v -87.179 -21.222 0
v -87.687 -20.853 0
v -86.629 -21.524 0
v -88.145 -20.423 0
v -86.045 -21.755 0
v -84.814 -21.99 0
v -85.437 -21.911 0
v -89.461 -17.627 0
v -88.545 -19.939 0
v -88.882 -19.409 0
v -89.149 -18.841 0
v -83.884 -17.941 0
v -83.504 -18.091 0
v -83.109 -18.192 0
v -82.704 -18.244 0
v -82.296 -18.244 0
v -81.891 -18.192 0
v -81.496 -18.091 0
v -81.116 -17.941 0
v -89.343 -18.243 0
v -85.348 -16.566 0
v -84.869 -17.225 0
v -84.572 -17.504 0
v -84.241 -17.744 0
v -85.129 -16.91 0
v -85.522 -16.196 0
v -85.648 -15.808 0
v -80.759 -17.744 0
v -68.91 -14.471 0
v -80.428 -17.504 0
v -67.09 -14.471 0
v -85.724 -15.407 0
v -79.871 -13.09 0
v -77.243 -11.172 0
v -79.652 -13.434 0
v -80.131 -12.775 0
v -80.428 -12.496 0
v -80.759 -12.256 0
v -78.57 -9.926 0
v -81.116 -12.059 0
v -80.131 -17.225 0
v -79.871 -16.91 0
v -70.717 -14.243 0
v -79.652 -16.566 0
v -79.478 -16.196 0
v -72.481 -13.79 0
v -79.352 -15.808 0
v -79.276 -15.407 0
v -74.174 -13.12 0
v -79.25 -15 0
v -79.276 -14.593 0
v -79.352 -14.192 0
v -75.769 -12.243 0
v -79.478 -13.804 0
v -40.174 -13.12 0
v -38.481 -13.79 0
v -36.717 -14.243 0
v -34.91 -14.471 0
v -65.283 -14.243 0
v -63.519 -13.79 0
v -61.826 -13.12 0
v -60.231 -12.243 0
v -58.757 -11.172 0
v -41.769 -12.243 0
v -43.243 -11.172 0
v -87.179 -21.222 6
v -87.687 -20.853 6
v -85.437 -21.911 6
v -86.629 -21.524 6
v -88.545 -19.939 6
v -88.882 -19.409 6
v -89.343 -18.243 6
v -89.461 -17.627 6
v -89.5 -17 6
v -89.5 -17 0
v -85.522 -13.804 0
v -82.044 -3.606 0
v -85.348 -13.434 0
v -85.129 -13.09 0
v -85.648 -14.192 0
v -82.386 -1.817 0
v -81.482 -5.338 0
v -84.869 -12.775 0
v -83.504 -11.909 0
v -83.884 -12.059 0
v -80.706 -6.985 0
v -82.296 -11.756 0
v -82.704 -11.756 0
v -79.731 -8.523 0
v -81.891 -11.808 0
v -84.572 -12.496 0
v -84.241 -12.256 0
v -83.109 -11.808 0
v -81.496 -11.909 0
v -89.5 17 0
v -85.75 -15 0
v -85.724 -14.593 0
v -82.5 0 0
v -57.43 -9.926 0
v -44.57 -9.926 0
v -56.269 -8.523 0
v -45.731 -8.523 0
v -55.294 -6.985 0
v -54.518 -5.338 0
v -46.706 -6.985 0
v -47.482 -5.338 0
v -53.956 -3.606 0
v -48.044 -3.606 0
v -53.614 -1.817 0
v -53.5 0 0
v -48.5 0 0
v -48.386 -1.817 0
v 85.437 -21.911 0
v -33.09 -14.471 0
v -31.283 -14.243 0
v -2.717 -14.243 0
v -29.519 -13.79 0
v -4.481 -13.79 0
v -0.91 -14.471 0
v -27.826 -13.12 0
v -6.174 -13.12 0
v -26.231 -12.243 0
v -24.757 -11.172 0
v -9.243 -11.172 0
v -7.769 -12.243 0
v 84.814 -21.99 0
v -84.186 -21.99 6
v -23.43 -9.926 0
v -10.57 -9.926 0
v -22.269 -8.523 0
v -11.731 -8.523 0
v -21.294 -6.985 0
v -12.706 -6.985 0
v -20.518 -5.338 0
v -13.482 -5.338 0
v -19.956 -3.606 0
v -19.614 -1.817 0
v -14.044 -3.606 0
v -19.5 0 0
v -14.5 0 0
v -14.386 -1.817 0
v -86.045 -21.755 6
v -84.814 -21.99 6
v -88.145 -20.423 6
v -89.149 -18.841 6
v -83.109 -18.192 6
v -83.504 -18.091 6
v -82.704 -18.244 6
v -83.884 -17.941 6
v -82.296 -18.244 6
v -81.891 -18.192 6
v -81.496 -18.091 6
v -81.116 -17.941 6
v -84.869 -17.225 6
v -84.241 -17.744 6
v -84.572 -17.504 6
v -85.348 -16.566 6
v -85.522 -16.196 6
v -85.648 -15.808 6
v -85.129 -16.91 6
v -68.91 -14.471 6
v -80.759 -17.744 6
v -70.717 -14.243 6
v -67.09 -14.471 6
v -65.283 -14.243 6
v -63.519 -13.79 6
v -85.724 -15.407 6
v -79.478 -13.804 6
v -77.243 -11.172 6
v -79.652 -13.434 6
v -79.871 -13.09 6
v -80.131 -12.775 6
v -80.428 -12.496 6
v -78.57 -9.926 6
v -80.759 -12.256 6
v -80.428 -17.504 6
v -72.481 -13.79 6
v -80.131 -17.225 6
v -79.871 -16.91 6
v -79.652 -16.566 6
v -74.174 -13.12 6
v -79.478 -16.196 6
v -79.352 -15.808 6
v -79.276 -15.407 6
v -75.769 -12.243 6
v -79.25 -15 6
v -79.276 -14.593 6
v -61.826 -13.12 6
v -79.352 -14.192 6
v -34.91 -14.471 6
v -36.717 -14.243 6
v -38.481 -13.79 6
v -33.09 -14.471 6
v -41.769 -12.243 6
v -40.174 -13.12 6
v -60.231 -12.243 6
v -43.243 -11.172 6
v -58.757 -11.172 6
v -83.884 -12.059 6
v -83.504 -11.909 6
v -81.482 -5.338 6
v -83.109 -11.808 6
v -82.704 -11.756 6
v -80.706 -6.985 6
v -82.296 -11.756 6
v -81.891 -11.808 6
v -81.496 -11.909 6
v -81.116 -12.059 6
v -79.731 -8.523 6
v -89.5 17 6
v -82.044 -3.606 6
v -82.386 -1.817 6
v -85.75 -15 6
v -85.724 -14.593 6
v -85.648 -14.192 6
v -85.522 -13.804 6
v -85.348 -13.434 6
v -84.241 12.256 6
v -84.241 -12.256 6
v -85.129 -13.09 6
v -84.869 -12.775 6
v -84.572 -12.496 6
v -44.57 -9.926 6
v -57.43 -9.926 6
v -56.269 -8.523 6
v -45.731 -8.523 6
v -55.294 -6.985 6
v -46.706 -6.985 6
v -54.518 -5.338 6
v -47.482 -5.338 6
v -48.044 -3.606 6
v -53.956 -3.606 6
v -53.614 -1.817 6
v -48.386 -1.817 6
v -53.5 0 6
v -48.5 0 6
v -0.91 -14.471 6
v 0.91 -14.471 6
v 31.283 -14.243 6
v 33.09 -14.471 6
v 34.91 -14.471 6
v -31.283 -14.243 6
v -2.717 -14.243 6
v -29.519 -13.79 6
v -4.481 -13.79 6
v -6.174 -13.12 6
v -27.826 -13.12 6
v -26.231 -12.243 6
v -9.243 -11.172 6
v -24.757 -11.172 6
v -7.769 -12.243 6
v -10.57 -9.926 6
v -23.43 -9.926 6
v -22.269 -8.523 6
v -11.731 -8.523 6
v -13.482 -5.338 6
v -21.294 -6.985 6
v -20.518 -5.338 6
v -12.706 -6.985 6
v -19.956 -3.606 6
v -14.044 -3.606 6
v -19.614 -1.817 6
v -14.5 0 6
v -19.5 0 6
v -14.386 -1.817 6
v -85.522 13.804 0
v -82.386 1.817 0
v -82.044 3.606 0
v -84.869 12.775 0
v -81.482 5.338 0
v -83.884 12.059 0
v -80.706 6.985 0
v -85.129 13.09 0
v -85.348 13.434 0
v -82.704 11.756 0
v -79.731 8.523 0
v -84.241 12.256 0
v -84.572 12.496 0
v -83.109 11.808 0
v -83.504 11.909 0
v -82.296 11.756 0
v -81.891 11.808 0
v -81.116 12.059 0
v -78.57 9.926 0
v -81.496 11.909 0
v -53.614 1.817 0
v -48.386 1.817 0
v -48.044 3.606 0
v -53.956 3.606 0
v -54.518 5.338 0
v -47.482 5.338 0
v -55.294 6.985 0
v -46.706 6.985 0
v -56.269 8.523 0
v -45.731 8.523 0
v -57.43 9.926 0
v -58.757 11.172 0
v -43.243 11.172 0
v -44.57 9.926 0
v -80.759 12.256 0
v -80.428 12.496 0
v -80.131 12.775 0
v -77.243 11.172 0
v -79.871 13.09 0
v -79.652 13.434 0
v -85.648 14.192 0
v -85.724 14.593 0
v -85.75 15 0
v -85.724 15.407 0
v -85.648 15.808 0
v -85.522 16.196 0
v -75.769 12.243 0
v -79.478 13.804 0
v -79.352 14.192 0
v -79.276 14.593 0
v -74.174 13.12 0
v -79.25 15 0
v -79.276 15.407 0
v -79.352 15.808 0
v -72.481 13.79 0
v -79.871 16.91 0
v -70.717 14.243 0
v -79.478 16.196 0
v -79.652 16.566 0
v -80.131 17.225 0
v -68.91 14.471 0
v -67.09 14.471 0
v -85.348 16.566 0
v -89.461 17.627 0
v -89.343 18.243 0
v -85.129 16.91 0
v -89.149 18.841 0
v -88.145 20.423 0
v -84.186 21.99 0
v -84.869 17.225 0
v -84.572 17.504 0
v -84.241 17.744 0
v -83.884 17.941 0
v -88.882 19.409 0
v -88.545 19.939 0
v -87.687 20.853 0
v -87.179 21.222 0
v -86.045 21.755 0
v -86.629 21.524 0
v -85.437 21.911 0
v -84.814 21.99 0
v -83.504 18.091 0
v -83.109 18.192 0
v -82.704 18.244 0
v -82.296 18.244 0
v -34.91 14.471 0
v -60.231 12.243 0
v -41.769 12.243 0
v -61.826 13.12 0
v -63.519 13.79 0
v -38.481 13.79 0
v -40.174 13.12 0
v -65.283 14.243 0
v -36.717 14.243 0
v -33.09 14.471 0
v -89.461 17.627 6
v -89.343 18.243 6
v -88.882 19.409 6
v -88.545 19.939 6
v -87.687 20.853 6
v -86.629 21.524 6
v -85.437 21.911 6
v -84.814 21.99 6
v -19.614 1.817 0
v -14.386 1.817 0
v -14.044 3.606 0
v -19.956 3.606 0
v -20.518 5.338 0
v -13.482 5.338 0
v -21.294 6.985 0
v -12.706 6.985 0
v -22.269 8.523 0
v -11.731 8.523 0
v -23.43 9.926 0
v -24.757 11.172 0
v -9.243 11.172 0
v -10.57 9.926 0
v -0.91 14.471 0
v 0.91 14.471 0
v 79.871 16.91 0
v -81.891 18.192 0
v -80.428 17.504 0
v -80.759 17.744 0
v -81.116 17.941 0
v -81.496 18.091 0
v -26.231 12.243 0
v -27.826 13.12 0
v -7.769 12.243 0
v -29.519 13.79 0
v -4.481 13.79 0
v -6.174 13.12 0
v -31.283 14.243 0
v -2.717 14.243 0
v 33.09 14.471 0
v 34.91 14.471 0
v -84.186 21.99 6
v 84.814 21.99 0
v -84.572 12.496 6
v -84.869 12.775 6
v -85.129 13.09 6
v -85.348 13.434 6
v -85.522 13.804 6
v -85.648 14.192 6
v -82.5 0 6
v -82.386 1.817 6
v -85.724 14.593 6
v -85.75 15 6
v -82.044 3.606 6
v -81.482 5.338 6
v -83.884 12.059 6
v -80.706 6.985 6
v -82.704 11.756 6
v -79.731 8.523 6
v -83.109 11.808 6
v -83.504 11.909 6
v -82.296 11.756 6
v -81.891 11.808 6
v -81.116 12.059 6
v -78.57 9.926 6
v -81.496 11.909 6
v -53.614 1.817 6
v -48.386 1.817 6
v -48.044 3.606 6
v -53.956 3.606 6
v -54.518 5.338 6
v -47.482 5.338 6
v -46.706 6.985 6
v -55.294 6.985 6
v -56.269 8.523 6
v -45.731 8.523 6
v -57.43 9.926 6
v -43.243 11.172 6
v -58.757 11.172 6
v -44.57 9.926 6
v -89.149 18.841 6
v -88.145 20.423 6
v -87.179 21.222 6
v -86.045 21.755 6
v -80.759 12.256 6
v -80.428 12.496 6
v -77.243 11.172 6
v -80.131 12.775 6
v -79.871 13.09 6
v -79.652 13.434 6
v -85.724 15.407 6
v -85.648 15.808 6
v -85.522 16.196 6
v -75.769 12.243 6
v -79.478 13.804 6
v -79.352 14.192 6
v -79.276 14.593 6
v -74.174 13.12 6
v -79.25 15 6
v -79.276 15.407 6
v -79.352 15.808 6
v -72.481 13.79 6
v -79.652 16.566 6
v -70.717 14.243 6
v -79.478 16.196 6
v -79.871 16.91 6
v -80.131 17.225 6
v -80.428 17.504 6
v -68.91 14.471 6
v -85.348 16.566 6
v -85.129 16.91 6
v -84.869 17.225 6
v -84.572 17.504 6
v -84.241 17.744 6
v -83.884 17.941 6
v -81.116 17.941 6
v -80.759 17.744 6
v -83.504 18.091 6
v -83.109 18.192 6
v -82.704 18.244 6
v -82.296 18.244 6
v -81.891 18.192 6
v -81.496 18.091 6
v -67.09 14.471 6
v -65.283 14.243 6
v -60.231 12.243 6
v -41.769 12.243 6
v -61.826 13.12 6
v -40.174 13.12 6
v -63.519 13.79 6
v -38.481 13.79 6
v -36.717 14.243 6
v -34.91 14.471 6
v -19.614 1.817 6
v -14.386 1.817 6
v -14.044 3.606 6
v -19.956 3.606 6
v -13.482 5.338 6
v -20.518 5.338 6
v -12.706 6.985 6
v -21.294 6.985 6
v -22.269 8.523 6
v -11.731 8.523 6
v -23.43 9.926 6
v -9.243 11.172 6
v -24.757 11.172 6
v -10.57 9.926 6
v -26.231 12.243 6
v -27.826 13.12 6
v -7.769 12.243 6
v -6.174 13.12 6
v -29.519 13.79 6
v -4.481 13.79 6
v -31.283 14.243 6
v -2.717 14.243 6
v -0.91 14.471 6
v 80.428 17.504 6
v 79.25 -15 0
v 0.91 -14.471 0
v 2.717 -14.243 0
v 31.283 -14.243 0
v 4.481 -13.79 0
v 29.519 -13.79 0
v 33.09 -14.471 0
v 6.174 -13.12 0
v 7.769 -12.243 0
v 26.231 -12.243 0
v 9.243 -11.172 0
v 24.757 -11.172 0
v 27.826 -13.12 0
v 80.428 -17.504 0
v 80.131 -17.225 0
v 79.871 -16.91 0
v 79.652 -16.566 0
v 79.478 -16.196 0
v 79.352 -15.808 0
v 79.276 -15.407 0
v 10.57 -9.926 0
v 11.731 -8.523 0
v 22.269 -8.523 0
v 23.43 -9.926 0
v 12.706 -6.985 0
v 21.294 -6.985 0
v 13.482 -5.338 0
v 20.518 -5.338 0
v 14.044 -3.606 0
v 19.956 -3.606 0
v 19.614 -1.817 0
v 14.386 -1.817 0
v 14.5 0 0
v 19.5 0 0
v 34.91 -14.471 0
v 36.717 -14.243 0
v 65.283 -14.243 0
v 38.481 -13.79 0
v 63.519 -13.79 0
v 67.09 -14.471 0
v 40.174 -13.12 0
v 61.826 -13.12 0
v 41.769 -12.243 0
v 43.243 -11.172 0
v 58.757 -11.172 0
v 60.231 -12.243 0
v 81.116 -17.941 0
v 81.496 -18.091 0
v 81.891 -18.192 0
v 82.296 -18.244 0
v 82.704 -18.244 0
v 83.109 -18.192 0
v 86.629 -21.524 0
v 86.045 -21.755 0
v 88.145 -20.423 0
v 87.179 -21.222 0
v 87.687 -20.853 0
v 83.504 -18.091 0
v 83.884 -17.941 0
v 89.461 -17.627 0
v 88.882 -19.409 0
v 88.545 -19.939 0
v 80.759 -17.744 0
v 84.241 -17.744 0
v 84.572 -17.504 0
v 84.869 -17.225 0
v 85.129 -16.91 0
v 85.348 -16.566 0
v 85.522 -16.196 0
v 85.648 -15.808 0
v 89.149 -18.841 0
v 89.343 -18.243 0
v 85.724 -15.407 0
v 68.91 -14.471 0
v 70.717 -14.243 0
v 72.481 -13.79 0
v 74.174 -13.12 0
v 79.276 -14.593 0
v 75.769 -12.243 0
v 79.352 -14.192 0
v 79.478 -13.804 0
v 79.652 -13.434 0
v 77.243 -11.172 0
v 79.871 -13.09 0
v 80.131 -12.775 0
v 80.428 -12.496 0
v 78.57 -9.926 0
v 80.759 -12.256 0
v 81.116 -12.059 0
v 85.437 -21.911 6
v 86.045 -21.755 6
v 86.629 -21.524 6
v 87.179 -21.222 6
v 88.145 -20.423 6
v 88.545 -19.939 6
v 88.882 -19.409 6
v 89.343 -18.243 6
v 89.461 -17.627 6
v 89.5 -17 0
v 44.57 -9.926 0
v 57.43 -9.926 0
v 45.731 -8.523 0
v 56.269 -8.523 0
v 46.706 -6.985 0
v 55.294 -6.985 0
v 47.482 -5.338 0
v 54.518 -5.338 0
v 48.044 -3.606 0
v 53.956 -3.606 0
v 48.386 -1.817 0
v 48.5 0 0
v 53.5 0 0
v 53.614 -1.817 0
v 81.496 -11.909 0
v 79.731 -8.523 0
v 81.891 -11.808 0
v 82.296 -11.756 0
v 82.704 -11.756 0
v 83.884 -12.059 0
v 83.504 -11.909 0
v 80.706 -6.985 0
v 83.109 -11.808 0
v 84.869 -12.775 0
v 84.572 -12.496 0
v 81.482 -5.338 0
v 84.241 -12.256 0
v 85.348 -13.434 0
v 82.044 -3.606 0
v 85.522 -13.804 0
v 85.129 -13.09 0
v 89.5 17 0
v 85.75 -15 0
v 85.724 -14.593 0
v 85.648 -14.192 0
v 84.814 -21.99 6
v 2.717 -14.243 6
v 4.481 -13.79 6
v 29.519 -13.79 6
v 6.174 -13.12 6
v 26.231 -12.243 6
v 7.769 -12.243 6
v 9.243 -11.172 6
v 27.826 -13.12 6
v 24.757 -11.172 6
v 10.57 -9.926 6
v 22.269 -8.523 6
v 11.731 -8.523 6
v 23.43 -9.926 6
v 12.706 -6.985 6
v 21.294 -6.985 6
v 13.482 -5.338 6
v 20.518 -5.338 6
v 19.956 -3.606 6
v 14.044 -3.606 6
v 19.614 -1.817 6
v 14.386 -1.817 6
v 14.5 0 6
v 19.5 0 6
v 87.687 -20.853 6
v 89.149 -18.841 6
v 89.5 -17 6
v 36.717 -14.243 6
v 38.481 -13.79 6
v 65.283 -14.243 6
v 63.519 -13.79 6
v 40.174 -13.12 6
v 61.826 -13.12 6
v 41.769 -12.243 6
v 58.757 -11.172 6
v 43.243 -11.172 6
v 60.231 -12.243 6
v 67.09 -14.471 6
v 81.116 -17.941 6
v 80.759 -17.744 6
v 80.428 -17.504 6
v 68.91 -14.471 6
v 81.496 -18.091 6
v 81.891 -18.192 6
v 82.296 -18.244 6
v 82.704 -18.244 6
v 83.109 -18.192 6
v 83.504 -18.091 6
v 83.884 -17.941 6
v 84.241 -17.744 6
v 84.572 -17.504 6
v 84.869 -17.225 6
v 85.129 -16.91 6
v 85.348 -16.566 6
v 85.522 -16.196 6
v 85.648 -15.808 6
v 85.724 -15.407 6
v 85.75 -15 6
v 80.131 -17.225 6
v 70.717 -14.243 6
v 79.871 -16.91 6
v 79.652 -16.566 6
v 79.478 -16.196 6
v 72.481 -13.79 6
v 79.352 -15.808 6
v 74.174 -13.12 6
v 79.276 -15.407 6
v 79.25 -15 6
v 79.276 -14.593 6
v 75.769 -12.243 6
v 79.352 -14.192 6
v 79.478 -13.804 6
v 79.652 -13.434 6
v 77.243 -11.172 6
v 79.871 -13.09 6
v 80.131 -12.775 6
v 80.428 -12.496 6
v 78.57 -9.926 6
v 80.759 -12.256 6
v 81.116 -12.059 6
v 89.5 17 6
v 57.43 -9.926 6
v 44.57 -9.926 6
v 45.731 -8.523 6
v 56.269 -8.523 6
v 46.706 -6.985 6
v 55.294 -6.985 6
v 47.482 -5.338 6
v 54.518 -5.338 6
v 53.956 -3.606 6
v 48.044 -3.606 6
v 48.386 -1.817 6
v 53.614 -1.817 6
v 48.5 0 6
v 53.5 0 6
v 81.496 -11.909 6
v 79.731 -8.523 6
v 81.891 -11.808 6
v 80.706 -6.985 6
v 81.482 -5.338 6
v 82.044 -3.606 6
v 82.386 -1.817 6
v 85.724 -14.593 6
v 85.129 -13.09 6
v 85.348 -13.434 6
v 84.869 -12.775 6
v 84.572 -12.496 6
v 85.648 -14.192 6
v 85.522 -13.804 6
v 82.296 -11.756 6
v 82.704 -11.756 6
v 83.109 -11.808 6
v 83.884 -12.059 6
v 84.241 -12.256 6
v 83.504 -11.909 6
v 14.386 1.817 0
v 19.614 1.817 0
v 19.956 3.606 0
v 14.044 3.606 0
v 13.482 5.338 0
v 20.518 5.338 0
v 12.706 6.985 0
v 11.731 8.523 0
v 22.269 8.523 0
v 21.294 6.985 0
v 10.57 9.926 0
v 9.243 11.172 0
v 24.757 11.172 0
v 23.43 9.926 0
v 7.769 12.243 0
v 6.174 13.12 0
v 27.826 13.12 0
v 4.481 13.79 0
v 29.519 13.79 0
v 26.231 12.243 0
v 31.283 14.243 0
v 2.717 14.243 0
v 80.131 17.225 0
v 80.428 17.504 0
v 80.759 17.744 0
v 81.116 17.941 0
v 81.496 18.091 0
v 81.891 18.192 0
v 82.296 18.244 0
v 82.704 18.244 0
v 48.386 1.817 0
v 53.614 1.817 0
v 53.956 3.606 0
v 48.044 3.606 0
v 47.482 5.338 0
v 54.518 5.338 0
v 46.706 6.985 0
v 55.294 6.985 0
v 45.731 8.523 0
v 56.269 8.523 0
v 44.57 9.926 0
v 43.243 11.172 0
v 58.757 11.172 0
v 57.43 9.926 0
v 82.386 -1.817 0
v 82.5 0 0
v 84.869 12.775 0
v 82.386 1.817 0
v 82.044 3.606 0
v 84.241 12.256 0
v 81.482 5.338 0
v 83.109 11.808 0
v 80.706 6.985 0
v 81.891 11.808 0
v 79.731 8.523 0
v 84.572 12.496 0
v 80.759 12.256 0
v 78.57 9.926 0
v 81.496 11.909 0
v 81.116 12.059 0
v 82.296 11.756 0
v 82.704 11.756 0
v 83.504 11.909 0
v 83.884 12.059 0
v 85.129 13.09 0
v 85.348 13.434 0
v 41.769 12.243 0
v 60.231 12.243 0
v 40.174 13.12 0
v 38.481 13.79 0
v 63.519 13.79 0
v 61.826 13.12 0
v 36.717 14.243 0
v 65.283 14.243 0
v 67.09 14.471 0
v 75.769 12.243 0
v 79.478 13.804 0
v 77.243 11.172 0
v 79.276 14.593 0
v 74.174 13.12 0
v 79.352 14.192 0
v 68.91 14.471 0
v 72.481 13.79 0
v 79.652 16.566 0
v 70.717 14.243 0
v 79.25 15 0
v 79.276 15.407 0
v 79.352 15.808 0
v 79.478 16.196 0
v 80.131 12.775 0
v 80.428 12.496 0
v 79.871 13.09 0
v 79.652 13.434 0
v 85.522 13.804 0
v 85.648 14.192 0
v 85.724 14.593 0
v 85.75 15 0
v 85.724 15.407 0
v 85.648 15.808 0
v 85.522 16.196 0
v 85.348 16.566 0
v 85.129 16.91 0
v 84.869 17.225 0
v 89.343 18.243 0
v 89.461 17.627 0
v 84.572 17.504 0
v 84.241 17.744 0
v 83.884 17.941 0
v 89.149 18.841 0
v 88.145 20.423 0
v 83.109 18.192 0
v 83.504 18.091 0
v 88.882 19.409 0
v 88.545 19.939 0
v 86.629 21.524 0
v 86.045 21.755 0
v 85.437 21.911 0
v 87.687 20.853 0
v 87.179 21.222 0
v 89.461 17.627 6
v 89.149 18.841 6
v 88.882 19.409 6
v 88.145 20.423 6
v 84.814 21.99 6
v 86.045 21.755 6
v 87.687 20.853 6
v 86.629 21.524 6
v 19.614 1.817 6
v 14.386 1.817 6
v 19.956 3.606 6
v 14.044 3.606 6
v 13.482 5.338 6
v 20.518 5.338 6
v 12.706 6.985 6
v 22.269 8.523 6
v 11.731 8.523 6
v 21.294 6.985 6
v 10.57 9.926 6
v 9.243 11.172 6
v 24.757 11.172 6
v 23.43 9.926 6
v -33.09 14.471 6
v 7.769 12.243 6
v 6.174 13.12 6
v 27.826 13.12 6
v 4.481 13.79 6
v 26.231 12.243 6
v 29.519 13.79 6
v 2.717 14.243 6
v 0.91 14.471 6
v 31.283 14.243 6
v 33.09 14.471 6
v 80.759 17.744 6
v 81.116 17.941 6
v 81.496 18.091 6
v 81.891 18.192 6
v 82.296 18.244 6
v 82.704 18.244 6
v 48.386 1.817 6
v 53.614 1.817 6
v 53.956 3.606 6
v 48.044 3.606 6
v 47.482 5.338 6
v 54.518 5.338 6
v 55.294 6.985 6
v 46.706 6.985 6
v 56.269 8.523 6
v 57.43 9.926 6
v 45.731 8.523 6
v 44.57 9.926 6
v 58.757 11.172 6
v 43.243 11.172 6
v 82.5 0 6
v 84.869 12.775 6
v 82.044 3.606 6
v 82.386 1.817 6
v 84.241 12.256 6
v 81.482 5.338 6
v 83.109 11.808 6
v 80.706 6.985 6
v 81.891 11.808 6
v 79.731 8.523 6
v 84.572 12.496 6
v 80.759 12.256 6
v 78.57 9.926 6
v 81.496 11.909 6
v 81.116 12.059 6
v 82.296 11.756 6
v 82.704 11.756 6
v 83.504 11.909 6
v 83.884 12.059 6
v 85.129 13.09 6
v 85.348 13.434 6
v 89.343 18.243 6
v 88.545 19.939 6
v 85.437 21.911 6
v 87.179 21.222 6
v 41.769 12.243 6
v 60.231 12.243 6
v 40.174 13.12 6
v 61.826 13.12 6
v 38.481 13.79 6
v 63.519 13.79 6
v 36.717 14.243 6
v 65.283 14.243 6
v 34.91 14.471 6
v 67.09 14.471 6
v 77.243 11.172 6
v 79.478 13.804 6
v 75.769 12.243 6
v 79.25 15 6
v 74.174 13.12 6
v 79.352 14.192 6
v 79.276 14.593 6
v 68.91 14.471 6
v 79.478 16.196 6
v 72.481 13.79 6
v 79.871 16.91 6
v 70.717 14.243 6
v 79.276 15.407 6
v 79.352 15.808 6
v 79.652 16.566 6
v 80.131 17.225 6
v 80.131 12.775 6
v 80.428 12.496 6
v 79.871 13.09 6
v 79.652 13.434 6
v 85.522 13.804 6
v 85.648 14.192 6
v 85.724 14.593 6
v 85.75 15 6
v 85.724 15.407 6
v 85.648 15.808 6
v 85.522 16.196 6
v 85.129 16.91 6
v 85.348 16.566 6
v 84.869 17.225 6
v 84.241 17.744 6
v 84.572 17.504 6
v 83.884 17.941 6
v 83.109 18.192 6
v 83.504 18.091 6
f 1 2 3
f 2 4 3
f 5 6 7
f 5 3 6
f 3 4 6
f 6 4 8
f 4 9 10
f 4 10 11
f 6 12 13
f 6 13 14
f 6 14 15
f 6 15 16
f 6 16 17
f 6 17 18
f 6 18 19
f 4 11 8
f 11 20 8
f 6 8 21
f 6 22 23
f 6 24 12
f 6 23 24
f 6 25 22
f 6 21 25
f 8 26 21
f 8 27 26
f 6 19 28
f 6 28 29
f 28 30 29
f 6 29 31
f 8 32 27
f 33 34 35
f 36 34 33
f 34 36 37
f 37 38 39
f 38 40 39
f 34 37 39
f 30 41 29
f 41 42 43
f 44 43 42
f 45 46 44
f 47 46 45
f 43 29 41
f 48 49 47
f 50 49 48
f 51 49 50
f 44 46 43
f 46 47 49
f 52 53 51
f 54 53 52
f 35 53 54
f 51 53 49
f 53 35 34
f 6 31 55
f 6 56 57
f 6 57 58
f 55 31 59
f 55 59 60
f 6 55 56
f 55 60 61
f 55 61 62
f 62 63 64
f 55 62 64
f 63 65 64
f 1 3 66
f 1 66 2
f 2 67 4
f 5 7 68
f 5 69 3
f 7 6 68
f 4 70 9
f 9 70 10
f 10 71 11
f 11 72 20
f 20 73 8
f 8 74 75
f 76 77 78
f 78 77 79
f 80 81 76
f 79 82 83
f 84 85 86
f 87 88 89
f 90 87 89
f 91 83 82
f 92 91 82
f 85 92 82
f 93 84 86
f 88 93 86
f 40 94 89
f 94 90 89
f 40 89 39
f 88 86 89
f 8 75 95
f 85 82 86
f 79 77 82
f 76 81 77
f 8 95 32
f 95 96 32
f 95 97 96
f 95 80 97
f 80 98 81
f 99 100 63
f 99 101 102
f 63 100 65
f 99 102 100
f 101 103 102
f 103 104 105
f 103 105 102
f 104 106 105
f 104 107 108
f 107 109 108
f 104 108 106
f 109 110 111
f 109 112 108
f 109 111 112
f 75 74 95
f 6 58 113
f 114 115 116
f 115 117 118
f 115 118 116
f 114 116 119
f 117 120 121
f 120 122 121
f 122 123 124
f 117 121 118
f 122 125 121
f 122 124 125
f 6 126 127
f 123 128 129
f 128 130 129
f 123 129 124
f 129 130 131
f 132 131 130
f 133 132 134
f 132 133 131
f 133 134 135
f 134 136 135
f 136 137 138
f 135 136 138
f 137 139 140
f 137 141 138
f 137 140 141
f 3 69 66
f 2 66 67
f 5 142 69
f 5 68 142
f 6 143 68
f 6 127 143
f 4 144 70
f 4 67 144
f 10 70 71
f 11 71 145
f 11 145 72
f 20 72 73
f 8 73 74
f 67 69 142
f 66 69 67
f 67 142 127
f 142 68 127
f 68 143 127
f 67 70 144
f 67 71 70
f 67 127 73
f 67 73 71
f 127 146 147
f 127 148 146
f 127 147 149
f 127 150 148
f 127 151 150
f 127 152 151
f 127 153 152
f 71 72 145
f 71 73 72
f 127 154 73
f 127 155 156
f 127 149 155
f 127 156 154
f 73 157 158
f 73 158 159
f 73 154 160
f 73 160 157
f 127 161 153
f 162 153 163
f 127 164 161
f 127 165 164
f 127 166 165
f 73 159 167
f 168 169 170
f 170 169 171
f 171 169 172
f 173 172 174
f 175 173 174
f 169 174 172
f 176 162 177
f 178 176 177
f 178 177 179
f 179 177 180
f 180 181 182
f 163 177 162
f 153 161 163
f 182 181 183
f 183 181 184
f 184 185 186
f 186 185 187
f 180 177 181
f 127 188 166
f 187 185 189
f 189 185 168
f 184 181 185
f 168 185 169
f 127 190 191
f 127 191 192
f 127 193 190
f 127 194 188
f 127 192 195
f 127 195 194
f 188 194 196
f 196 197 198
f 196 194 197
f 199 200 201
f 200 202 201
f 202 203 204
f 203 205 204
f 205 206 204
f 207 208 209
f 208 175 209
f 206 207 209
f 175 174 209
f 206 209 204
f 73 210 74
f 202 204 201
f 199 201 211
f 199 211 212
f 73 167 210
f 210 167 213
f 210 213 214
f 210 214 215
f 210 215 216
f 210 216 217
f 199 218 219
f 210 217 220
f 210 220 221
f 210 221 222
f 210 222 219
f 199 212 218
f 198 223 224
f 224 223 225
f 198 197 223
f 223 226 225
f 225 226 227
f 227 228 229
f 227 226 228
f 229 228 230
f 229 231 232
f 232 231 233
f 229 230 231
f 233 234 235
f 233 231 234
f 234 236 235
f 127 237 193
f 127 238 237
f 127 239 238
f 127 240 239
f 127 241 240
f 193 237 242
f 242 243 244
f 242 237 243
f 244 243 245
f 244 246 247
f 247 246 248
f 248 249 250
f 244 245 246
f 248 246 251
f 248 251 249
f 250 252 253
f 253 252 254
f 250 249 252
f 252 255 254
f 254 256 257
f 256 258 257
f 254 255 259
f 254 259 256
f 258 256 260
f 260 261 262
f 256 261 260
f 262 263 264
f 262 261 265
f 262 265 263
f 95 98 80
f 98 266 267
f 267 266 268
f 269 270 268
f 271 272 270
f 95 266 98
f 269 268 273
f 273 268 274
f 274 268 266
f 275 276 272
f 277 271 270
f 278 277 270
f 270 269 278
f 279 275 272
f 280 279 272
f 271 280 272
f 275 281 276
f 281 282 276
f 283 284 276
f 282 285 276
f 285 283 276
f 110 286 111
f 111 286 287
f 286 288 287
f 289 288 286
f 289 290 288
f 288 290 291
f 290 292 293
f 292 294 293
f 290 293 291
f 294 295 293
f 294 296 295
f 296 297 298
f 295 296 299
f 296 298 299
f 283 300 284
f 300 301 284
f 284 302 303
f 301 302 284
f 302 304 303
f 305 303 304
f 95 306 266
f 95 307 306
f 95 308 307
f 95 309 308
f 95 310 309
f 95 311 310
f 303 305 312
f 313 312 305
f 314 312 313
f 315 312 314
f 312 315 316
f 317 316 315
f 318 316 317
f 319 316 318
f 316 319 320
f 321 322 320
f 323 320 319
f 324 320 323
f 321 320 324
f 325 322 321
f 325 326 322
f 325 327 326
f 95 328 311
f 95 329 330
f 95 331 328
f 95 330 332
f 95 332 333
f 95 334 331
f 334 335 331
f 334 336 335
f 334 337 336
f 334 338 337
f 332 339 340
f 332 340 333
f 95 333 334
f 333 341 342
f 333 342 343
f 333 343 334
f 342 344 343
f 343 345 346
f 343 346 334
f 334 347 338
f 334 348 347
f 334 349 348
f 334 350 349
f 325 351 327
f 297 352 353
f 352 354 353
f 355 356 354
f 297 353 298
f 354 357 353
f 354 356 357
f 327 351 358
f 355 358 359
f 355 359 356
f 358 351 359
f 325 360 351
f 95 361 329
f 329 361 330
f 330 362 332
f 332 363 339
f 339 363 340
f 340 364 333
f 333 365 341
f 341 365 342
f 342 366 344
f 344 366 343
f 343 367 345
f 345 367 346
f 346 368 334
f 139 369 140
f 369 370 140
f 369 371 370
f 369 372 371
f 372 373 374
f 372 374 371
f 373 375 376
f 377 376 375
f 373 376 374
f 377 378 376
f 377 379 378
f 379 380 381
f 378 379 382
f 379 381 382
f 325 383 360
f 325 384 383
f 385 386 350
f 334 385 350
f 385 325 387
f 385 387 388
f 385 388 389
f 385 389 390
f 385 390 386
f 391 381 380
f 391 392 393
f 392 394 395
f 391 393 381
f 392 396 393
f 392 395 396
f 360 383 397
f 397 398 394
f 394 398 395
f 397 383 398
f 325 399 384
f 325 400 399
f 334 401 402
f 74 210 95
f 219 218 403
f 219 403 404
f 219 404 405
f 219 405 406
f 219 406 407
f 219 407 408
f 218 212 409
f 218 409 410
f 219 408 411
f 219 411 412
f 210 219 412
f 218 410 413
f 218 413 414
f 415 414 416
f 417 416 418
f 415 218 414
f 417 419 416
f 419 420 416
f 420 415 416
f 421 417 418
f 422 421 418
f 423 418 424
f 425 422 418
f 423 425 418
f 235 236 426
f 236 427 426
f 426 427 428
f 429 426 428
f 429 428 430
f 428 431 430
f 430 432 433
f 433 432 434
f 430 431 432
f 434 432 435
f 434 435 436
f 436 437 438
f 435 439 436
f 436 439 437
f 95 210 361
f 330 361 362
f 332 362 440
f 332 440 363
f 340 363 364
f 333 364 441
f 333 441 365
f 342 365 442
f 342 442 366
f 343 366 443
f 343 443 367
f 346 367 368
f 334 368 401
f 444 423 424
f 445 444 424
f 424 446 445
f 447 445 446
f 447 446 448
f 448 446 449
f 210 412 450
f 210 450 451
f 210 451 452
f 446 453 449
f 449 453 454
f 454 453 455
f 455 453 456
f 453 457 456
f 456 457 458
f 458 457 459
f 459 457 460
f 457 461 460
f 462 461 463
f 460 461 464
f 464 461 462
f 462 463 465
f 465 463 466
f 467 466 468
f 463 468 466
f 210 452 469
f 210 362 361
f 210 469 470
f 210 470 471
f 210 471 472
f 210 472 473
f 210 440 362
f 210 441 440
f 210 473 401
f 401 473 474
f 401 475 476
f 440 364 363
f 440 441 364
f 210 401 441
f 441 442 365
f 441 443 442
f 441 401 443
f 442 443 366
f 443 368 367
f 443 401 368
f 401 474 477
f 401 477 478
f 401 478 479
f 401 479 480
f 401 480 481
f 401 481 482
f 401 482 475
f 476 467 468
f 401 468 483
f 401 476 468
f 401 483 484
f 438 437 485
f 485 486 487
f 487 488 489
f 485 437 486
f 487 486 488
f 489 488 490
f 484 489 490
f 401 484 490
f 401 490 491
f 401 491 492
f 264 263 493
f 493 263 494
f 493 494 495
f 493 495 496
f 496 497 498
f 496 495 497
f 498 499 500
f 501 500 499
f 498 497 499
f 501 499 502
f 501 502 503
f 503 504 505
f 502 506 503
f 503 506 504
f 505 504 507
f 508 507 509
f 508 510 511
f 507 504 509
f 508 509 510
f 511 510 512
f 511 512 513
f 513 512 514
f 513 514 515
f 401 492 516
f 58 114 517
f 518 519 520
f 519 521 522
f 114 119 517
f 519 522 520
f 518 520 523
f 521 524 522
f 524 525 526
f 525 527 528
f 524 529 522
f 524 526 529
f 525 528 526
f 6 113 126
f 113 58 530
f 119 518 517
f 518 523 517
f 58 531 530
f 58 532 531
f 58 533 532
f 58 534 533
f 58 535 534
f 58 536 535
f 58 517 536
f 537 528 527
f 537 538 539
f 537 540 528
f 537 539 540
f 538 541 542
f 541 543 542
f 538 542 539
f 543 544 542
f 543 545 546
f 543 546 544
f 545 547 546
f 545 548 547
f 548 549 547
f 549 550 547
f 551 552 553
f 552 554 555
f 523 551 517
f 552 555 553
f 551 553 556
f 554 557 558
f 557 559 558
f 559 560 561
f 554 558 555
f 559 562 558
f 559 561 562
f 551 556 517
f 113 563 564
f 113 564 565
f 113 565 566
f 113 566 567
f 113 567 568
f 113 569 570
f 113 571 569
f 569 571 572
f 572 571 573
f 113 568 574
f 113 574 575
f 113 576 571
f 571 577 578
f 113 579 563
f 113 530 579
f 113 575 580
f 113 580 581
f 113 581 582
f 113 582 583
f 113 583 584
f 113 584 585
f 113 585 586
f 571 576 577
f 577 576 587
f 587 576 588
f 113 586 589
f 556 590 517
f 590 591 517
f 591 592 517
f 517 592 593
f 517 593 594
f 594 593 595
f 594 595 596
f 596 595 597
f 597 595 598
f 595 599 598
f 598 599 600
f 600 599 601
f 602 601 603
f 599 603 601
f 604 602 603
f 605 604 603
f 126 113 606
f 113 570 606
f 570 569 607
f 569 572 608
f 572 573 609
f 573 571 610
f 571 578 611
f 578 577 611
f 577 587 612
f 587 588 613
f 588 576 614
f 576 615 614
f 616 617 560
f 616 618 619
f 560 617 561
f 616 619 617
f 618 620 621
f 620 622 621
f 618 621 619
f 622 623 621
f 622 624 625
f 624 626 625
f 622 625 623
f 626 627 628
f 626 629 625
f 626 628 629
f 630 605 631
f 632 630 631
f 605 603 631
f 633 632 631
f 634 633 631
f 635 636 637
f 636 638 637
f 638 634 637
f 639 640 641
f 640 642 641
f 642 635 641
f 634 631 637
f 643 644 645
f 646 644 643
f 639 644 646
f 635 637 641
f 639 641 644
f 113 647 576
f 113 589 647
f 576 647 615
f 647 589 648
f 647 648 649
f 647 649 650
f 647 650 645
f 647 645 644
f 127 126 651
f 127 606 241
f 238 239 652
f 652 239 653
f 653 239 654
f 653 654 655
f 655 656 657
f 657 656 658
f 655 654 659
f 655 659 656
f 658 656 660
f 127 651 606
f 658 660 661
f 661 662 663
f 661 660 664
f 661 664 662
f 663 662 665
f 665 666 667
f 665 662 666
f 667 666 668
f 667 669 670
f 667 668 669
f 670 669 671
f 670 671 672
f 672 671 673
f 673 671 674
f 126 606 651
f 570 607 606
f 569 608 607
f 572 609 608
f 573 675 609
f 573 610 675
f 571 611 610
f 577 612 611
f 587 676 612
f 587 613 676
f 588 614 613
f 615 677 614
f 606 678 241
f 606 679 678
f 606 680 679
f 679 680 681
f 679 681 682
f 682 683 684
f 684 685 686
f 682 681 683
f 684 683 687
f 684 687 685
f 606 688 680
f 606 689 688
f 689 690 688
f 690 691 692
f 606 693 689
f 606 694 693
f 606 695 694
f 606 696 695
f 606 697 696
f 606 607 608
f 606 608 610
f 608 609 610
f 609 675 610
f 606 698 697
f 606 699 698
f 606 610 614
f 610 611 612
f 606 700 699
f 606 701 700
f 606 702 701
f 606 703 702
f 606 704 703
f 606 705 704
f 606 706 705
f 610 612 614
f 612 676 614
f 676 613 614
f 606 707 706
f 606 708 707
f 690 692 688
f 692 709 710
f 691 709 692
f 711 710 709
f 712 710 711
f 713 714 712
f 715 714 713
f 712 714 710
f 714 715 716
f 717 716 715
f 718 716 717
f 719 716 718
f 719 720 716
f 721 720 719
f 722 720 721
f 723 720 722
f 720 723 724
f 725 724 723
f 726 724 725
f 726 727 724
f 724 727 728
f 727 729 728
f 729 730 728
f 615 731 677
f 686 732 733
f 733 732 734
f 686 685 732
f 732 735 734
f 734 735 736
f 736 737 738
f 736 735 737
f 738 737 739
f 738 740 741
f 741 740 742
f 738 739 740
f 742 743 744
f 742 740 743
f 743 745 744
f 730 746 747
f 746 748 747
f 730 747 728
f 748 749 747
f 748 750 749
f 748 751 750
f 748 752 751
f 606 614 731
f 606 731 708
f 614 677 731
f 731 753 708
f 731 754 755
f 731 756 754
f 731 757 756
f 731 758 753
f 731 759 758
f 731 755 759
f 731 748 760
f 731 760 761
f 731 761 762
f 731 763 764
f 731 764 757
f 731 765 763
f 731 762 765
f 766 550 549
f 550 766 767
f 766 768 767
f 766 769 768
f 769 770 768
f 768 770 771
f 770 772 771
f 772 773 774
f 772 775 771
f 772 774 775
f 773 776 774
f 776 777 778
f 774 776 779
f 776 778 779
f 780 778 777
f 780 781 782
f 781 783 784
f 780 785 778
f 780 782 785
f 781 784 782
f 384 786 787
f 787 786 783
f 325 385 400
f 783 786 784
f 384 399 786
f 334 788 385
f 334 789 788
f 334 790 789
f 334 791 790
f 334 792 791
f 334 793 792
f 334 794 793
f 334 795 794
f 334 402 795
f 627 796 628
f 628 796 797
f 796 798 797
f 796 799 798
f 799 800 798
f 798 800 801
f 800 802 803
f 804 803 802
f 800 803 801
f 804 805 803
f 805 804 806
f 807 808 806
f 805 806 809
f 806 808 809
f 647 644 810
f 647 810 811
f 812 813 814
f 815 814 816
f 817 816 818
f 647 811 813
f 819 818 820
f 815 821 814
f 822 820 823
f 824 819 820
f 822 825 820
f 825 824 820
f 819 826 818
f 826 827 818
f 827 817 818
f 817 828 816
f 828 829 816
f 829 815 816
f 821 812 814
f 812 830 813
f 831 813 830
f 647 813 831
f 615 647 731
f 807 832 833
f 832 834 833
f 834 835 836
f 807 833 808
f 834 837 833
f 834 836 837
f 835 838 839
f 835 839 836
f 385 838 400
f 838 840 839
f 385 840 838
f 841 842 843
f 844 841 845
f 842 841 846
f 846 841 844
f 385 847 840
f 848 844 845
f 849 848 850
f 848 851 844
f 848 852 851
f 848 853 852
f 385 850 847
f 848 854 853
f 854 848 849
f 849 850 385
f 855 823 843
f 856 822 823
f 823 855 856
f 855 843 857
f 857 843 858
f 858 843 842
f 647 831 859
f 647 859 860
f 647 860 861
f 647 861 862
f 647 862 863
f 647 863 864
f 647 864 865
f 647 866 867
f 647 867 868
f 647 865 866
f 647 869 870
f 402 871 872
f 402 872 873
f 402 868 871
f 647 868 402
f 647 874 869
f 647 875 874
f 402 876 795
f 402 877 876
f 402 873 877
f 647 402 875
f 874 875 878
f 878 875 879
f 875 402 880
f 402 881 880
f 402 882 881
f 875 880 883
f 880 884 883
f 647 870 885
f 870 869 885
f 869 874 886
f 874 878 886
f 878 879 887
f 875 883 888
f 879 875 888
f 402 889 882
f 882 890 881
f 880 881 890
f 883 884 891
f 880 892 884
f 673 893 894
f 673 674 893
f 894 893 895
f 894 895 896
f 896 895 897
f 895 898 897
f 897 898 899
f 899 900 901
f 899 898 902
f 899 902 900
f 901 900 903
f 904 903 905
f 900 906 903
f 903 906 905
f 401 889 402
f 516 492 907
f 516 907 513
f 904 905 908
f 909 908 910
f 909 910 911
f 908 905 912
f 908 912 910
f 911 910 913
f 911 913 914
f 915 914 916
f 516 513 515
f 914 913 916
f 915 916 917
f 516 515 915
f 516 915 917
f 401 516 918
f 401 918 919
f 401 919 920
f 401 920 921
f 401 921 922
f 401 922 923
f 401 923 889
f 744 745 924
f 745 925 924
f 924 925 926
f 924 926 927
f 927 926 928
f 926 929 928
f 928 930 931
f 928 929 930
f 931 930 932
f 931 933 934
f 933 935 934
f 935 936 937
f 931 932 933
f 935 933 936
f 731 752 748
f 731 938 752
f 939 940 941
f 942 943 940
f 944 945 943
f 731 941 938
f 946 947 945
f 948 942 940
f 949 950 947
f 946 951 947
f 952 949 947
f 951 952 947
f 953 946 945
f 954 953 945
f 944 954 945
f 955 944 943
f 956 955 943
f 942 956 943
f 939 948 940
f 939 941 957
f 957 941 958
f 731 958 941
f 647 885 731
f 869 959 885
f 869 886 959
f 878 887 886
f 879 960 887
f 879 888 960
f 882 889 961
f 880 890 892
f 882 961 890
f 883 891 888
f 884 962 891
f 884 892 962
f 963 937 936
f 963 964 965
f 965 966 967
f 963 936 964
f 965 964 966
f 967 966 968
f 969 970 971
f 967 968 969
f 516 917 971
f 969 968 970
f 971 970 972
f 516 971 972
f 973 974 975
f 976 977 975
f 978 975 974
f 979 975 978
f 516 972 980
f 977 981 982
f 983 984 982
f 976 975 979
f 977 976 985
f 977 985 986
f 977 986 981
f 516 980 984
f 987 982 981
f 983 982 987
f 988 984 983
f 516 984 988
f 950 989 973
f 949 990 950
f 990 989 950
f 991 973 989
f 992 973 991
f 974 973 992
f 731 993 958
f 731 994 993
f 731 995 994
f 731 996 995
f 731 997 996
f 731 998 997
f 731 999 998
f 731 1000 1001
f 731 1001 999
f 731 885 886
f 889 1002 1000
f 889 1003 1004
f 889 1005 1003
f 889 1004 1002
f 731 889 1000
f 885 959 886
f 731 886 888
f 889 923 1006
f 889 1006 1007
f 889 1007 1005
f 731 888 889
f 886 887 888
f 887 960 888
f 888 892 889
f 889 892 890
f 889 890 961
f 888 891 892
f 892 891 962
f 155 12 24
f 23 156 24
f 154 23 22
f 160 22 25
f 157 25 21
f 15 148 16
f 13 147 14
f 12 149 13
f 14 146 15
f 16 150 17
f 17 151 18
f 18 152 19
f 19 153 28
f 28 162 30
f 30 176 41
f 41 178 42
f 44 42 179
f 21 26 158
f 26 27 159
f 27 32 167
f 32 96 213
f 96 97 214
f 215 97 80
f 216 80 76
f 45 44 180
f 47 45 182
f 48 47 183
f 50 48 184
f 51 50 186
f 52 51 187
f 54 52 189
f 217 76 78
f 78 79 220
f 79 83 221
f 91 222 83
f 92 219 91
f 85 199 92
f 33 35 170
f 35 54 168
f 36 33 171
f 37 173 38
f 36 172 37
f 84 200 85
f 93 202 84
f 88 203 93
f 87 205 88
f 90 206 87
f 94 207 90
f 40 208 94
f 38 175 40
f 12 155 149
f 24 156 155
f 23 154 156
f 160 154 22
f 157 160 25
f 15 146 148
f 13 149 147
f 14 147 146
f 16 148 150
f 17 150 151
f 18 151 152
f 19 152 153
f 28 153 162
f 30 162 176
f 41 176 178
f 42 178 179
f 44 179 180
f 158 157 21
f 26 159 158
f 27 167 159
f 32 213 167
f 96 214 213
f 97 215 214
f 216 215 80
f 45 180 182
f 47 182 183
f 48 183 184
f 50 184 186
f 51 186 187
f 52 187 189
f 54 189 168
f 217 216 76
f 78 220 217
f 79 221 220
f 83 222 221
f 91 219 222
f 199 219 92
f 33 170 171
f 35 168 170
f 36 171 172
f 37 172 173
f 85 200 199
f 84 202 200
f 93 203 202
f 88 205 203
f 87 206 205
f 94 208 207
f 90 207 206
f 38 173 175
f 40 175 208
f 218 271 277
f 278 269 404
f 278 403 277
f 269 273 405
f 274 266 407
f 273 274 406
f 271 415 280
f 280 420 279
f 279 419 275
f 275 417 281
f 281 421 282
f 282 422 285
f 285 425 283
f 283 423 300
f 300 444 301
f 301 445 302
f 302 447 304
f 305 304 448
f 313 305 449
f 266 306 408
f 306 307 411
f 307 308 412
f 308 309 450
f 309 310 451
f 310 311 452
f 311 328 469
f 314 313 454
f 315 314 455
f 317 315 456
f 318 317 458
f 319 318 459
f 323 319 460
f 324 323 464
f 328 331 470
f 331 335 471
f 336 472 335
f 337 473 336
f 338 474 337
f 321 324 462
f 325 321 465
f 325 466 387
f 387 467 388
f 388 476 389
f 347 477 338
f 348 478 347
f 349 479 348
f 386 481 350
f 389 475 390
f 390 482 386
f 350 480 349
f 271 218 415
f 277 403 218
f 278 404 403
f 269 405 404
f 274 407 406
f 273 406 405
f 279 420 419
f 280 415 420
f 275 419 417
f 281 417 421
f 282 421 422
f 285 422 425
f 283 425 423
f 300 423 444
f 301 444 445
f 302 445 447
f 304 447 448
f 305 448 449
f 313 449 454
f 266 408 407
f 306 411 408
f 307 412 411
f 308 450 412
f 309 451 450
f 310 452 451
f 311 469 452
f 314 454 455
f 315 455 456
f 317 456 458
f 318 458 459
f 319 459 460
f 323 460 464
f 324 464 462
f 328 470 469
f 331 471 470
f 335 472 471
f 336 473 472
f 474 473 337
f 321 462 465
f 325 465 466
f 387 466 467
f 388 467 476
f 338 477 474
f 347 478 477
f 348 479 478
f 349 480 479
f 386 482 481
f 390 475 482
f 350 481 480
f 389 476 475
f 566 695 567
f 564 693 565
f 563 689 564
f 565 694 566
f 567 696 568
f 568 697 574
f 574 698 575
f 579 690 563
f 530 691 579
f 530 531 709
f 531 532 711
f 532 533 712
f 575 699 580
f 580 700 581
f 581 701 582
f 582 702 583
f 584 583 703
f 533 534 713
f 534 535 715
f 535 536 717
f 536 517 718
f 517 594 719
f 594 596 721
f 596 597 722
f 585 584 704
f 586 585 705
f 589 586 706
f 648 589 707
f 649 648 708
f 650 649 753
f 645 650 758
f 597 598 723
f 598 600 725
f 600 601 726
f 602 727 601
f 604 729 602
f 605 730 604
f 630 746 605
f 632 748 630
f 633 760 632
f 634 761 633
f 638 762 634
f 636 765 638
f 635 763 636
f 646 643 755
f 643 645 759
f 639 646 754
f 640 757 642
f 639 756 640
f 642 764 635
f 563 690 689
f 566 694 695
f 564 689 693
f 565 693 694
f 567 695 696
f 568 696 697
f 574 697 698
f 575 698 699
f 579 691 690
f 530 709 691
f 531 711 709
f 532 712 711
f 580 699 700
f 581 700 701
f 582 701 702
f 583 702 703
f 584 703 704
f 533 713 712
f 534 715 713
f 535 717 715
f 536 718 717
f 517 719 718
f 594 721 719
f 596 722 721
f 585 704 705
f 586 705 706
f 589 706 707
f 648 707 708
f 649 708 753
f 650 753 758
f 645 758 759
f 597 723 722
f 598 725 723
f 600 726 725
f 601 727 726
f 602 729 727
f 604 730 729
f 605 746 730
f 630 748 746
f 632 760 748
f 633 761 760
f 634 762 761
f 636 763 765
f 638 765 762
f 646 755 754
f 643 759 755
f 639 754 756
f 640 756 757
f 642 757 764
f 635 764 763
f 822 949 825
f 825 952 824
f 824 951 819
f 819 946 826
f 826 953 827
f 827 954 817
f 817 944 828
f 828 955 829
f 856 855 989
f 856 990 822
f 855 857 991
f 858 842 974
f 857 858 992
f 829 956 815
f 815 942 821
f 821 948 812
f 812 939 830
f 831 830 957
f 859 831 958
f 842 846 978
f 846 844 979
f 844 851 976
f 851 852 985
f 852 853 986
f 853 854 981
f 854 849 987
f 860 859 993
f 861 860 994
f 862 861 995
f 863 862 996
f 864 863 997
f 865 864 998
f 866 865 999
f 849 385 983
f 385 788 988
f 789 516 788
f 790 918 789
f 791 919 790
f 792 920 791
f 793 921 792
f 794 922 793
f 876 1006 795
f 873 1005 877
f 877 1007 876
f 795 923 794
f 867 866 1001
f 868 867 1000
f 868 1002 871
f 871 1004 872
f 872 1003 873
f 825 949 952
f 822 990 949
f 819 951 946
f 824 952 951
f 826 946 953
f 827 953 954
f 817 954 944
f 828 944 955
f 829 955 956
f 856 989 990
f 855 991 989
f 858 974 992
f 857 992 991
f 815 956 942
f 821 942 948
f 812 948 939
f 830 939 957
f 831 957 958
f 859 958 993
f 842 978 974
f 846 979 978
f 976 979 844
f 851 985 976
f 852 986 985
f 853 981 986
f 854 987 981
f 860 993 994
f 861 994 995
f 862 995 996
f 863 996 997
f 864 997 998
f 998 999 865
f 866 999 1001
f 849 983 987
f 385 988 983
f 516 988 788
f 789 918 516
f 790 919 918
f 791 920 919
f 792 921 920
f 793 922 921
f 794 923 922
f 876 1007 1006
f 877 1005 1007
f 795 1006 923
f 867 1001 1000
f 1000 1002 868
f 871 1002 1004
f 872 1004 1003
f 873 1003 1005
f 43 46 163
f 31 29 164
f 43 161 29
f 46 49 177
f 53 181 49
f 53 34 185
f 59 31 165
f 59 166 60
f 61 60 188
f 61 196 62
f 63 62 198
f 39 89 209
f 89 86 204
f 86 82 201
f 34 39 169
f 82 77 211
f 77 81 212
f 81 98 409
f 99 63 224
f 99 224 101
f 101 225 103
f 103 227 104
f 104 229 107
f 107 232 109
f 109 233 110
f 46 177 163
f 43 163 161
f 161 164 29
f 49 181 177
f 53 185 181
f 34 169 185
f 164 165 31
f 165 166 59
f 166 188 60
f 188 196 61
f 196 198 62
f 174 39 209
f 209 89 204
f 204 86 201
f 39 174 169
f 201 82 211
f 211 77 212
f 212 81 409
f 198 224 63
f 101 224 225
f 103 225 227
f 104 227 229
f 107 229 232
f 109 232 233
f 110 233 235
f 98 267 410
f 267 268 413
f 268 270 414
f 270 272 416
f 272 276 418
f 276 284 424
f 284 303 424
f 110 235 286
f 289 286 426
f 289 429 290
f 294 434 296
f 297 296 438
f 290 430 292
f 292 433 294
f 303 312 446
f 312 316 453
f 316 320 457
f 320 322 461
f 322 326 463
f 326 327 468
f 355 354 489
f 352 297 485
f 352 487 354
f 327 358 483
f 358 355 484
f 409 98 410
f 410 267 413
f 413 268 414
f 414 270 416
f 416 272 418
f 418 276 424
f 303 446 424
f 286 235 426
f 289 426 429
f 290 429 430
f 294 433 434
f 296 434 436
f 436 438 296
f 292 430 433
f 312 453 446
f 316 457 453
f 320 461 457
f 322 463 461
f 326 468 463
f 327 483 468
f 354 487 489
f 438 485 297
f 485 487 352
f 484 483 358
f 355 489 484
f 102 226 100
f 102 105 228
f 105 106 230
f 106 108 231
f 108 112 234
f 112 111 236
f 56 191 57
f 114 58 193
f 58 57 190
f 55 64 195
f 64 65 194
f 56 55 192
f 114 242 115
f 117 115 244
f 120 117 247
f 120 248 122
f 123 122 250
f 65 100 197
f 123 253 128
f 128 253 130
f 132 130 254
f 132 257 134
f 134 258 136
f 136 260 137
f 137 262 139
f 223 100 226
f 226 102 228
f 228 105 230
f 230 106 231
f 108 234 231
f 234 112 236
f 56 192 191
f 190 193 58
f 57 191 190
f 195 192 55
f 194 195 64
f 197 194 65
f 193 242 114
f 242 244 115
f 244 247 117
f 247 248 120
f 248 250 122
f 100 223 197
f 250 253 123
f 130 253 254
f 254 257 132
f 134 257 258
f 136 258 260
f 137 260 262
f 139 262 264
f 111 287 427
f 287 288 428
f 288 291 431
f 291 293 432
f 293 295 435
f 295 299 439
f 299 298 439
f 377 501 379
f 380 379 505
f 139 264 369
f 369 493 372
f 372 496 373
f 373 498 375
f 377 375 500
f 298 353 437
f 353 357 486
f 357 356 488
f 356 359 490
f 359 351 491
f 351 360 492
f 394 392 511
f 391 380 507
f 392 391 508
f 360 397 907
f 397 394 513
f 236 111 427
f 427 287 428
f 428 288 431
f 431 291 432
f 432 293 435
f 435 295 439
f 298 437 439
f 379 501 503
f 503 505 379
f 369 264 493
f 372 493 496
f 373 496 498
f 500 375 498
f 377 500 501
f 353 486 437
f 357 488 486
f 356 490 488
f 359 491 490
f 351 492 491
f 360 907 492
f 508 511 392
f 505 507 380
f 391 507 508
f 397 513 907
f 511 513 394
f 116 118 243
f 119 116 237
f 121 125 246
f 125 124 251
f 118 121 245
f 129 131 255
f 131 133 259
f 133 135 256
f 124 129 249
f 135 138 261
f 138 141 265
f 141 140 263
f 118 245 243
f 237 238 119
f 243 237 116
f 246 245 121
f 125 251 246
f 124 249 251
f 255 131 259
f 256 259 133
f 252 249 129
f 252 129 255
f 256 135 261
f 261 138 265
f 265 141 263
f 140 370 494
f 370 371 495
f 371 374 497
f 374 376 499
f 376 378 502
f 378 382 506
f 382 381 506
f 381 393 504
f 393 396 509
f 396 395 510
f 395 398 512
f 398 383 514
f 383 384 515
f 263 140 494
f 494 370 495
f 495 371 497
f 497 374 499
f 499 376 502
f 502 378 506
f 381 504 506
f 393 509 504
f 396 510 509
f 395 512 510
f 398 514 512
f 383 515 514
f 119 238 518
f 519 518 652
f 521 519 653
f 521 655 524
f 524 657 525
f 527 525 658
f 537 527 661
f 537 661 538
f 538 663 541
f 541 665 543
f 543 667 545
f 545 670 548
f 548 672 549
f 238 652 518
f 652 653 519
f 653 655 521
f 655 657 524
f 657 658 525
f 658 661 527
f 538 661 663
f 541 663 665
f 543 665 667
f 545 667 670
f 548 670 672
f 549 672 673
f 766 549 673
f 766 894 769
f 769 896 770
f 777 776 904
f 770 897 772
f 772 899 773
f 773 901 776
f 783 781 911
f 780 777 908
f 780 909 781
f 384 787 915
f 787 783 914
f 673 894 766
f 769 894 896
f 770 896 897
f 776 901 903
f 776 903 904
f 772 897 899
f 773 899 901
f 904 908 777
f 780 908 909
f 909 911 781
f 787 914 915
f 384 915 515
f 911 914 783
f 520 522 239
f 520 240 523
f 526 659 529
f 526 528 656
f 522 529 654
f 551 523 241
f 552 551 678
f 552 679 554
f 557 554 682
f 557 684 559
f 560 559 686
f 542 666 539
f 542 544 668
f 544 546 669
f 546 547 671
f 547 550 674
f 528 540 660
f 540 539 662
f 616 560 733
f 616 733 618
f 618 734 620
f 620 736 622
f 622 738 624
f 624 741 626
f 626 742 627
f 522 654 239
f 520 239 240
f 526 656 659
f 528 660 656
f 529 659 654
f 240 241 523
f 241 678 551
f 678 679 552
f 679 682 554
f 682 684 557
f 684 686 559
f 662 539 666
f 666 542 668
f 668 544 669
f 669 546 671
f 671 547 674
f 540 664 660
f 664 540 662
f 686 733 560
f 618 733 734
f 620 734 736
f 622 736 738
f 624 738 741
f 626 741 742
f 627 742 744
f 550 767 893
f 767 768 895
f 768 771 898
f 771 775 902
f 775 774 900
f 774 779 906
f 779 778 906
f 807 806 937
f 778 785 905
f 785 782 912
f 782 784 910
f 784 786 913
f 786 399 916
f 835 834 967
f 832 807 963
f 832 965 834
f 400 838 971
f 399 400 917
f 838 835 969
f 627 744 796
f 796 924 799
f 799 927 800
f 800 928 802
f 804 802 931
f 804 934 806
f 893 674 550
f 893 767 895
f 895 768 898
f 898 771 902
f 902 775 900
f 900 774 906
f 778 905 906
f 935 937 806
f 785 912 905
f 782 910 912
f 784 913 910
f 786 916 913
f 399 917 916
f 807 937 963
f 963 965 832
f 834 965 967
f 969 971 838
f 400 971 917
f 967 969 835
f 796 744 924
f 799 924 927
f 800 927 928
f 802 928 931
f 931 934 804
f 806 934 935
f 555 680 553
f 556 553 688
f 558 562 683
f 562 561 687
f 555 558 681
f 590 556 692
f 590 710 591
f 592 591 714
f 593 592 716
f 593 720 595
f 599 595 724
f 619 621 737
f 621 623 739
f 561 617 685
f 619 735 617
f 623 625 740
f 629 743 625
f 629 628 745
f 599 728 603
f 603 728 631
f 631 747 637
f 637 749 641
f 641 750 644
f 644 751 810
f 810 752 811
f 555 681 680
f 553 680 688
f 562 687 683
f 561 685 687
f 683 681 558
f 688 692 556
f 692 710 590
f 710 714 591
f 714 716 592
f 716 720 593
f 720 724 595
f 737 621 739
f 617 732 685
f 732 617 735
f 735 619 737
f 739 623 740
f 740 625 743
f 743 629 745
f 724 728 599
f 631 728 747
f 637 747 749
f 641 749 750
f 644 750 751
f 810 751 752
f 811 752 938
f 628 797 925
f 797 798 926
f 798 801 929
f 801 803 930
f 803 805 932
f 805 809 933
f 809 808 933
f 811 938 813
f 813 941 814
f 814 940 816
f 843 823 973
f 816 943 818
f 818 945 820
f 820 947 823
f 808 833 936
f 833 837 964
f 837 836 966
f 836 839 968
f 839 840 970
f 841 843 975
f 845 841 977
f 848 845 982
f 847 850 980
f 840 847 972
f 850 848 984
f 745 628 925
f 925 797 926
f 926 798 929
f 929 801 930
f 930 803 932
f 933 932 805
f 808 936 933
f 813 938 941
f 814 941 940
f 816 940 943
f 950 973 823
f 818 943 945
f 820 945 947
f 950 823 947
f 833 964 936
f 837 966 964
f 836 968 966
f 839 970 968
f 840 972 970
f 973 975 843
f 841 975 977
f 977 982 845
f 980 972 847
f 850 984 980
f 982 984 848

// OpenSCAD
$fn = 50;

difference() {
	union() {
		hull() {
			translate(v = [-84.5, 17.0, 0]) {
				cylinder(h = 6, r = 5);
			}
			translate(v = [84.5, 17.0, 0]) {
				cylinder(h = 6, r = 5);
			}
			translate(v = [-84.5, -17.0, 0]) {
				cylinder(h = 6, r = 5);
			}
			translate(v = [84.5, -17.0, 0]) {
				cylinder(h = 6, r = 5);
			}
		}
	}
	union() {
		translate(v = [-82.5, -15.0, -100.0]) {
			cylinder(h = 200, r = 3.25);
		}
		translate(v = [-82.5, 15.0, -100.0]) {
			cylinder(h = 200, r = 3.25);
		}
		translate(v = [82.5, -15.0, -100.0]) {
			cylinder(h = 200, r = 3.25);
		}
		translate(v = [82.5, 15.0, -100.0]) {
			cylinder(h = 200, r = 3.25);
		}
		translate(v = [-82.5, -15.0, -100.0]) {
			cylinder(h = 200, r = 1.8);
		}
		translate(v = [-82.5, 15.0, -100.0]) {
			cylinder(h = 200, r = 1.8);
		}
		translate(v = [82.5, -15.0, -100.0]) {
			cylinder(h = 200, r = 1.8);
		}
		translate(v = [82.5, 15.0, -100.0]) {
			cylinder(h = 200, r = 1.8);
		}
		translate(v = [-68.0, 0, 0.0]) {
			cylinder(h = 6, r = 14.5);
		}
		translate(v = [-34.0, 0, 0.0]) {
			cylinder(h = 6, r = 14.5);
		}
		cylinder(h = 6, r = 14.5);
		translate(v = [34.0, 0, 0.0]) {
			cylinder(h = 6, r = 14.5);
		}
		translate(v = [68.0, 0, 0.0]) {
			cylinder(h = 6, r = 14.5);
		}
	}
}
